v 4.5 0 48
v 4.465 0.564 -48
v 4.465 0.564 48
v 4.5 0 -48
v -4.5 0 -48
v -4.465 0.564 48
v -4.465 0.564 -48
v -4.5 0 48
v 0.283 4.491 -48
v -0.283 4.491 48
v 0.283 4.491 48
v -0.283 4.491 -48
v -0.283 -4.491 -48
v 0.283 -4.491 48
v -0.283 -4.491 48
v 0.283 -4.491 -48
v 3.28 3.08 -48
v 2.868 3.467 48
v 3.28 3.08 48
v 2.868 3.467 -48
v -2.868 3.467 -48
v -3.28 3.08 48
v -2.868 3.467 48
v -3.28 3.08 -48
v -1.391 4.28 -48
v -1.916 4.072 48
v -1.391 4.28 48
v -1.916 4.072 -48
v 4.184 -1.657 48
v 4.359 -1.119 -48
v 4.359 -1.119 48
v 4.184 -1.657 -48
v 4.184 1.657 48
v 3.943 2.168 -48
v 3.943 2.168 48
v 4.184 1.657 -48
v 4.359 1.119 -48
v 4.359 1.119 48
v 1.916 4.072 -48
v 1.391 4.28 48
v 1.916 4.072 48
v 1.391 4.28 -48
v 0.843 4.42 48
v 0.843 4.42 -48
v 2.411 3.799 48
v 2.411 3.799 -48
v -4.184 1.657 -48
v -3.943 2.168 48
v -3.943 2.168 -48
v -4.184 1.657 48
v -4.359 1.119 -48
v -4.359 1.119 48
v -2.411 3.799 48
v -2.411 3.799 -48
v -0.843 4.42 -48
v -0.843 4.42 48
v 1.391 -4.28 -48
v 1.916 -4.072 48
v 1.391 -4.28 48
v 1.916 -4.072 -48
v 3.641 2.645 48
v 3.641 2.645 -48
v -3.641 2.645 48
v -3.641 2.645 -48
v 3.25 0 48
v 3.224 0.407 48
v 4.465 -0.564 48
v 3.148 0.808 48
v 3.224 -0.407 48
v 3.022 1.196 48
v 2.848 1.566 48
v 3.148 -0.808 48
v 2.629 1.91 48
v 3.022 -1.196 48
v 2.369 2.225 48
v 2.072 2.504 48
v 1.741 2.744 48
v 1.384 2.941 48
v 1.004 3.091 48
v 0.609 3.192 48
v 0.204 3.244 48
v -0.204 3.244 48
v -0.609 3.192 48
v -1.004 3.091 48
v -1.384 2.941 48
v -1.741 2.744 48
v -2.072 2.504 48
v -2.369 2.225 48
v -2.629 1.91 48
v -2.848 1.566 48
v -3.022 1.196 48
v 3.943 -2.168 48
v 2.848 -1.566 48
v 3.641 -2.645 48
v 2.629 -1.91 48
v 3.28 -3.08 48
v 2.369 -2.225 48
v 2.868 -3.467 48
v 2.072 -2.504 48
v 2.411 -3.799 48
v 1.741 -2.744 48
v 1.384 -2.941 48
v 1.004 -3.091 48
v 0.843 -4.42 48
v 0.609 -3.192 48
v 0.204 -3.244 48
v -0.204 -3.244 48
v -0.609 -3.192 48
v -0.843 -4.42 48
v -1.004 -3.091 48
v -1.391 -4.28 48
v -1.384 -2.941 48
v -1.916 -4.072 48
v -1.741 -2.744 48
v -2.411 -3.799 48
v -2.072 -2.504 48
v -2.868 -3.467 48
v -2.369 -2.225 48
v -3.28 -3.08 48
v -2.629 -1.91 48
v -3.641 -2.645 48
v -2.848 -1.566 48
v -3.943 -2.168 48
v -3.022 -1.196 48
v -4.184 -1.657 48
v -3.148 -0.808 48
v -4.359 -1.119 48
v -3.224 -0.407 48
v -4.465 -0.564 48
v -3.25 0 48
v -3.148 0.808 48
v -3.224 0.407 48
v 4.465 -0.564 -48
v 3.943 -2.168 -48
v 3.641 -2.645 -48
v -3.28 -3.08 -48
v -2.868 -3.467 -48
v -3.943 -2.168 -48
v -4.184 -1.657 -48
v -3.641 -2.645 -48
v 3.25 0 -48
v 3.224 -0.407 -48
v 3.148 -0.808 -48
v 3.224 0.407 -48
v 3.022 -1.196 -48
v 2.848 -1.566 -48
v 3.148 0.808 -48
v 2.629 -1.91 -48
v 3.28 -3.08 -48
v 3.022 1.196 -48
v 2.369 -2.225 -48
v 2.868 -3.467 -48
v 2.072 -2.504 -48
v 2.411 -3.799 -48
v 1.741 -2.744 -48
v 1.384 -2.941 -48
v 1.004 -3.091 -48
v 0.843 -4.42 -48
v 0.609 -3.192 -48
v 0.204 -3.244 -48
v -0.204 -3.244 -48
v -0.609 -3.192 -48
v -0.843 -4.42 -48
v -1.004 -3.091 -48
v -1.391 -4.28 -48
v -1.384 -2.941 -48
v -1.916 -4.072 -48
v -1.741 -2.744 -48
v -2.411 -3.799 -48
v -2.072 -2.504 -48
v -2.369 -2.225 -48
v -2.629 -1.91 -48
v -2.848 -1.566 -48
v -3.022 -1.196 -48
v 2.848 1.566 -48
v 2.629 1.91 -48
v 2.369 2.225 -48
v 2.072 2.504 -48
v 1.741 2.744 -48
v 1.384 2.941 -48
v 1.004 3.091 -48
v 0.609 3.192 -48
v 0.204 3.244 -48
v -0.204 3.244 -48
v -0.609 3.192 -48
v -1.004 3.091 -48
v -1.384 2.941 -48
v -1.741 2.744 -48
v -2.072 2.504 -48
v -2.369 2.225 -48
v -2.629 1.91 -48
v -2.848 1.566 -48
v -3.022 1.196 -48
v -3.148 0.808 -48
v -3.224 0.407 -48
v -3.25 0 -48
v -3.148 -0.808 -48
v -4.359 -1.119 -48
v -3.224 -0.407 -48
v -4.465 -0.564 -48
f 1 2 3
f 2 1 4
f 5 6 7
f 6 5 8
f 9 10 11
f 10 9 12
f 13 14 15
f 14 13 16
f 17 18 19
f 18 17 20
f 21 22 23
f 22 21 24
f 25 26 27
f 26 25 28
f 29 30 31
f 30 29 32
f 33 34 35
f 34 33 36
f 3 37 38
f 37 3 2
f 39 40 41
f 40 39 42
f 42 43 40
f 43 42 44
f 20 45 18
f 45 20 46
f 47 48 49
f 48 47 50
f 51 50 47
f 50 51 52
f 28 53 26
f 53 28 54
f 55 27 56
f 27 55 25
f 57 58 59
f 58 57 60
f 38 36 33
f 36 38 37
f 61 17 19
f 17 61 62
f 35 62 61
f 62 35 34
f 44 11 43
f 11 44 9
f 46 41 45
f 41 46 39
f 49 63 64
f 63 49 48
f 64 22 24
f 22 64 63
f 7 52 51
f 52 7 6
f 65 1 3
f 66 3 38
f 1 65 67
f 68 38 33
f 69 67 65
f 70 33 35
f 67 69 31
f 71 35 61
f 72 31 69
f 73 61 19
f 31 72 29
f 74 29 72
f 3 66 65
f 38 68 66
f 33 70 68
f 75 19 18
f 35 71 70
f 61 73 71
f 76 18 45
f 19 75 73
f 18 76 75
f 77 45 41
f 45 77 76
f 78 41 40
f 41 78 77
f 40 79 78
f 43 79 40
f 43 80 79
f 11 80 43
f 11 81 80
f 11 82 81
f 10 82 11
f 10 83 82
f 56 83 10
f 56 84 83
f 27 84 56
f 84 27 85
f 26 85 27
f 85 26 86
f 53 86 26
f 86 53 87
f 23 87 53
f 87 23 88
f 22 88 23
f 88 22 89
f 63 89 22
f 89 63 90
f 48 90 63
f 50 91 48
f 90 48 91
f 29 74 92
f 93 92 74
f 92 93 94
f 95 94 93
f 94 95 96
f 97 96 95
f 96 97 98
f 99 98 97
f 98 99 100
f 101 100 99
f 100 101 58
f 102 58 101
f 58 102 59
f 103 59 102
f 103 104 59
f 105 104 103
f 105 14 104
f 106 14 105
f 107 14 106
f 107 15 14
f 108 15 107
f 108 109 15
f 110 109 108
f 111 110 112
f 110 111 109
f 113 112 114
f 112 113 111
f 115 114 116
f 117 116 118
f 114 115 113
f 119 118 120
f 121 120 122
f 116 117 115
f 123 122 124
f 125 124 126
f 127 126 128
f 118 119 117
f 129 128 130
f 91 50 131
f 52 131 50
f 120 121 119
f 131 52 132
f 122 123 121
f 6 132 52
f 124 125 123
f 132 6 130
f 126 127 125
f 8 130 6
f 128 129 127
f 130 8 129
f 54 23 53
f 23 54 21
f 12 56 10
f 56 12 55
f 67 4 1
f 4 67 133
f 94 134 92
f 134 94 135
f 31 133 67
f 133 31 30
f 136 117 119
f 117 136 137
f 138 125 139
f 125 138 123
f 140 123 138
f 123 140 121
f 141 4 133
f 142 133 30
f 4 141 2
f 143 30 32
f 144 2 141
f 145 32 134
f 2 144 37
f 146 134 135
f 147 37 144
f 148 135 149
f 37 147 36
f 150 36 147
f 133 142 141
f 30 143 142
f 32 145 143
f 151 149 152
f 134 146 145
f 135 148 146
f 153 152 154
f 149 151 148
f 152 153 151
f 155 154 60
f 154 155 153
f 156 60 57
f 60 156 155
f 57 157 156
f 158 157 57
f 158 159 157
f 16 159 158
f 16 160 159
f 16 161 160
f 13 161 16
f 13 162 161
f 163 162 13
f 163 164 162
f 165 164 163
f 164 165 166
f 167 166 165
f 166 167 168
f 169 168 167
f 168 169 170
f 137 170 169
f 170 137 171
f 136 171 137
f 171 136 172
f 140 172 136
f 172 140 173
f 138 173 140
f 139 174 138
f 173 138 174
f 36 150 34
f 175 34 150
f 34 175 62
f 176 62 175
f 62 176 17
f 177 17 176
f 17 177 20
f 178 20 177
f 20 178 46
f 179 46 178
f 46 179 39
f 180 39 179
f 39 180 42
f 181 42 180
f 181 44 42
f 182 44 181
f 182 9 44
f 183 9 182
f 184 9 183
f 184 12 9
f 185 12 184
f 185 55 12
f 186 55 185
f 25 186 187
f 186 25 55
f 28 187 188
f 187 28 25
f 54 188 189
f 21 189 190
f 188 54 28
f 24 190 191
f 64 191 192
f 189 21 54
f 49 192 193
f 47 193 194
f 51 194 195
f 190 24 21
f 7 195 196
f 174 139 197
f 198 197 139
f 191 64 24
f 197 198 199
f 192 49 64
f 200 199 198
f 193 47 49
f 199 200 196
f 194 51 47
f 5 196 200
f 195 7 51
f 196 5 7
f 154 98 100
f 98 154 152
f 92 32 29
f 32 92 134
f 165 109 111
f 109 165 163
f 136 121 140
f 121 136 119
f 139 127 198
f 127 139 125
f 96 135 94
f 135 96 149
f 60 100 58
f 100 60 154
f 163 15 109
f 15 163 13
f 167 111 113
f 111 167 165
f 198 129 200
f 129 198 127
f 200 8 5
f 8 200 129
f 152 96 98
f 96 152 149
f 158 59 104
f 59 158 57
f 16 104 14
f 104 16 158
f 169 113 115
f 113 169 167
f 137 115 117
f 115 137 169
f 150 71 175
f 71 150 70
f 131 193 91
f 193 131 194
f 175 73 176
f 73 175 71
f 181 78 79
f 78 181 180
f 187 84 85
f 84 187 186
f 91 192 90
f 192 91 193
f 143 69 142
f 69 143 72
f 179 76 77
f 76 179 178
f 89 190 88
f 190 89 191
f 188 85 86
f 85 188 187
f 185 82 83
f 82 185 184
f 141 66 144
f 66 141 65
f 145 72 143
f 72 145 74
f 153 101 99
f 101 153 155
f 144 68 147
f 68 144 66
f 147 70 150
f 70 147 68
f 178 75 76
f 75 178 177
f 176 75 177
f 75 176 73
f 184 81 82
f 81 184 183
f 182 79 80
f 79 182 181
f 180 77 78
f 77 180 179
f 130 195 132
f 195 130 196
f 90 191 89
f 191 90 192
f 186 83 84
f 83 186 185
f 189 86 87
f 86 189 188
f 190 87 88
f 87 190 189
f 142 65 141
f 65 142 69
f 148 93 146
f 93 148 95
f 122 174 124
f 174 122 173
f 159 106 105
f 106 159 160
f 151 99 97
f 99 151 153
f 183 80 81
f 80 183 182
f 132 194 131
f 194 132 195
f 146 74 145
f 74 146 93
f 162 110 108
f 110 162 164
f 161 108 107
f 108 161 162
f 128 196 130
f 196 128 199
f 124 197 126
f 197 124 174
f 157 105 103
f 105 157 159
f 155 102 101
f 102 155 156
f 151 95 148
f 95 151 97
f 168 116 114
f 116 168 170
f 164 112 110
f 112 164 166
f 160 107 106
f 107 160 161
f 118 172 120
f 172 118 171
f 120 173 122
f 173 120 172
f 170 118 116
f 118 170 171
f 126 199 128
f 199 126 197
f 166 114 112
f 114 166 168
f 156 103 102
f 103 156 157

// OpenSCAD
$fn = 50;


difference() {
	union() {
		translate(v = [0, 0, -48.0000000000]) {
			cylinder(h = 96, r = 4.5000000000);
		}
	}
	union() {
		translate(v = [0, 0, -100.0000000000]) {
			cylinder(h = 200, r = 3.2500000000);
		}
	}
}
